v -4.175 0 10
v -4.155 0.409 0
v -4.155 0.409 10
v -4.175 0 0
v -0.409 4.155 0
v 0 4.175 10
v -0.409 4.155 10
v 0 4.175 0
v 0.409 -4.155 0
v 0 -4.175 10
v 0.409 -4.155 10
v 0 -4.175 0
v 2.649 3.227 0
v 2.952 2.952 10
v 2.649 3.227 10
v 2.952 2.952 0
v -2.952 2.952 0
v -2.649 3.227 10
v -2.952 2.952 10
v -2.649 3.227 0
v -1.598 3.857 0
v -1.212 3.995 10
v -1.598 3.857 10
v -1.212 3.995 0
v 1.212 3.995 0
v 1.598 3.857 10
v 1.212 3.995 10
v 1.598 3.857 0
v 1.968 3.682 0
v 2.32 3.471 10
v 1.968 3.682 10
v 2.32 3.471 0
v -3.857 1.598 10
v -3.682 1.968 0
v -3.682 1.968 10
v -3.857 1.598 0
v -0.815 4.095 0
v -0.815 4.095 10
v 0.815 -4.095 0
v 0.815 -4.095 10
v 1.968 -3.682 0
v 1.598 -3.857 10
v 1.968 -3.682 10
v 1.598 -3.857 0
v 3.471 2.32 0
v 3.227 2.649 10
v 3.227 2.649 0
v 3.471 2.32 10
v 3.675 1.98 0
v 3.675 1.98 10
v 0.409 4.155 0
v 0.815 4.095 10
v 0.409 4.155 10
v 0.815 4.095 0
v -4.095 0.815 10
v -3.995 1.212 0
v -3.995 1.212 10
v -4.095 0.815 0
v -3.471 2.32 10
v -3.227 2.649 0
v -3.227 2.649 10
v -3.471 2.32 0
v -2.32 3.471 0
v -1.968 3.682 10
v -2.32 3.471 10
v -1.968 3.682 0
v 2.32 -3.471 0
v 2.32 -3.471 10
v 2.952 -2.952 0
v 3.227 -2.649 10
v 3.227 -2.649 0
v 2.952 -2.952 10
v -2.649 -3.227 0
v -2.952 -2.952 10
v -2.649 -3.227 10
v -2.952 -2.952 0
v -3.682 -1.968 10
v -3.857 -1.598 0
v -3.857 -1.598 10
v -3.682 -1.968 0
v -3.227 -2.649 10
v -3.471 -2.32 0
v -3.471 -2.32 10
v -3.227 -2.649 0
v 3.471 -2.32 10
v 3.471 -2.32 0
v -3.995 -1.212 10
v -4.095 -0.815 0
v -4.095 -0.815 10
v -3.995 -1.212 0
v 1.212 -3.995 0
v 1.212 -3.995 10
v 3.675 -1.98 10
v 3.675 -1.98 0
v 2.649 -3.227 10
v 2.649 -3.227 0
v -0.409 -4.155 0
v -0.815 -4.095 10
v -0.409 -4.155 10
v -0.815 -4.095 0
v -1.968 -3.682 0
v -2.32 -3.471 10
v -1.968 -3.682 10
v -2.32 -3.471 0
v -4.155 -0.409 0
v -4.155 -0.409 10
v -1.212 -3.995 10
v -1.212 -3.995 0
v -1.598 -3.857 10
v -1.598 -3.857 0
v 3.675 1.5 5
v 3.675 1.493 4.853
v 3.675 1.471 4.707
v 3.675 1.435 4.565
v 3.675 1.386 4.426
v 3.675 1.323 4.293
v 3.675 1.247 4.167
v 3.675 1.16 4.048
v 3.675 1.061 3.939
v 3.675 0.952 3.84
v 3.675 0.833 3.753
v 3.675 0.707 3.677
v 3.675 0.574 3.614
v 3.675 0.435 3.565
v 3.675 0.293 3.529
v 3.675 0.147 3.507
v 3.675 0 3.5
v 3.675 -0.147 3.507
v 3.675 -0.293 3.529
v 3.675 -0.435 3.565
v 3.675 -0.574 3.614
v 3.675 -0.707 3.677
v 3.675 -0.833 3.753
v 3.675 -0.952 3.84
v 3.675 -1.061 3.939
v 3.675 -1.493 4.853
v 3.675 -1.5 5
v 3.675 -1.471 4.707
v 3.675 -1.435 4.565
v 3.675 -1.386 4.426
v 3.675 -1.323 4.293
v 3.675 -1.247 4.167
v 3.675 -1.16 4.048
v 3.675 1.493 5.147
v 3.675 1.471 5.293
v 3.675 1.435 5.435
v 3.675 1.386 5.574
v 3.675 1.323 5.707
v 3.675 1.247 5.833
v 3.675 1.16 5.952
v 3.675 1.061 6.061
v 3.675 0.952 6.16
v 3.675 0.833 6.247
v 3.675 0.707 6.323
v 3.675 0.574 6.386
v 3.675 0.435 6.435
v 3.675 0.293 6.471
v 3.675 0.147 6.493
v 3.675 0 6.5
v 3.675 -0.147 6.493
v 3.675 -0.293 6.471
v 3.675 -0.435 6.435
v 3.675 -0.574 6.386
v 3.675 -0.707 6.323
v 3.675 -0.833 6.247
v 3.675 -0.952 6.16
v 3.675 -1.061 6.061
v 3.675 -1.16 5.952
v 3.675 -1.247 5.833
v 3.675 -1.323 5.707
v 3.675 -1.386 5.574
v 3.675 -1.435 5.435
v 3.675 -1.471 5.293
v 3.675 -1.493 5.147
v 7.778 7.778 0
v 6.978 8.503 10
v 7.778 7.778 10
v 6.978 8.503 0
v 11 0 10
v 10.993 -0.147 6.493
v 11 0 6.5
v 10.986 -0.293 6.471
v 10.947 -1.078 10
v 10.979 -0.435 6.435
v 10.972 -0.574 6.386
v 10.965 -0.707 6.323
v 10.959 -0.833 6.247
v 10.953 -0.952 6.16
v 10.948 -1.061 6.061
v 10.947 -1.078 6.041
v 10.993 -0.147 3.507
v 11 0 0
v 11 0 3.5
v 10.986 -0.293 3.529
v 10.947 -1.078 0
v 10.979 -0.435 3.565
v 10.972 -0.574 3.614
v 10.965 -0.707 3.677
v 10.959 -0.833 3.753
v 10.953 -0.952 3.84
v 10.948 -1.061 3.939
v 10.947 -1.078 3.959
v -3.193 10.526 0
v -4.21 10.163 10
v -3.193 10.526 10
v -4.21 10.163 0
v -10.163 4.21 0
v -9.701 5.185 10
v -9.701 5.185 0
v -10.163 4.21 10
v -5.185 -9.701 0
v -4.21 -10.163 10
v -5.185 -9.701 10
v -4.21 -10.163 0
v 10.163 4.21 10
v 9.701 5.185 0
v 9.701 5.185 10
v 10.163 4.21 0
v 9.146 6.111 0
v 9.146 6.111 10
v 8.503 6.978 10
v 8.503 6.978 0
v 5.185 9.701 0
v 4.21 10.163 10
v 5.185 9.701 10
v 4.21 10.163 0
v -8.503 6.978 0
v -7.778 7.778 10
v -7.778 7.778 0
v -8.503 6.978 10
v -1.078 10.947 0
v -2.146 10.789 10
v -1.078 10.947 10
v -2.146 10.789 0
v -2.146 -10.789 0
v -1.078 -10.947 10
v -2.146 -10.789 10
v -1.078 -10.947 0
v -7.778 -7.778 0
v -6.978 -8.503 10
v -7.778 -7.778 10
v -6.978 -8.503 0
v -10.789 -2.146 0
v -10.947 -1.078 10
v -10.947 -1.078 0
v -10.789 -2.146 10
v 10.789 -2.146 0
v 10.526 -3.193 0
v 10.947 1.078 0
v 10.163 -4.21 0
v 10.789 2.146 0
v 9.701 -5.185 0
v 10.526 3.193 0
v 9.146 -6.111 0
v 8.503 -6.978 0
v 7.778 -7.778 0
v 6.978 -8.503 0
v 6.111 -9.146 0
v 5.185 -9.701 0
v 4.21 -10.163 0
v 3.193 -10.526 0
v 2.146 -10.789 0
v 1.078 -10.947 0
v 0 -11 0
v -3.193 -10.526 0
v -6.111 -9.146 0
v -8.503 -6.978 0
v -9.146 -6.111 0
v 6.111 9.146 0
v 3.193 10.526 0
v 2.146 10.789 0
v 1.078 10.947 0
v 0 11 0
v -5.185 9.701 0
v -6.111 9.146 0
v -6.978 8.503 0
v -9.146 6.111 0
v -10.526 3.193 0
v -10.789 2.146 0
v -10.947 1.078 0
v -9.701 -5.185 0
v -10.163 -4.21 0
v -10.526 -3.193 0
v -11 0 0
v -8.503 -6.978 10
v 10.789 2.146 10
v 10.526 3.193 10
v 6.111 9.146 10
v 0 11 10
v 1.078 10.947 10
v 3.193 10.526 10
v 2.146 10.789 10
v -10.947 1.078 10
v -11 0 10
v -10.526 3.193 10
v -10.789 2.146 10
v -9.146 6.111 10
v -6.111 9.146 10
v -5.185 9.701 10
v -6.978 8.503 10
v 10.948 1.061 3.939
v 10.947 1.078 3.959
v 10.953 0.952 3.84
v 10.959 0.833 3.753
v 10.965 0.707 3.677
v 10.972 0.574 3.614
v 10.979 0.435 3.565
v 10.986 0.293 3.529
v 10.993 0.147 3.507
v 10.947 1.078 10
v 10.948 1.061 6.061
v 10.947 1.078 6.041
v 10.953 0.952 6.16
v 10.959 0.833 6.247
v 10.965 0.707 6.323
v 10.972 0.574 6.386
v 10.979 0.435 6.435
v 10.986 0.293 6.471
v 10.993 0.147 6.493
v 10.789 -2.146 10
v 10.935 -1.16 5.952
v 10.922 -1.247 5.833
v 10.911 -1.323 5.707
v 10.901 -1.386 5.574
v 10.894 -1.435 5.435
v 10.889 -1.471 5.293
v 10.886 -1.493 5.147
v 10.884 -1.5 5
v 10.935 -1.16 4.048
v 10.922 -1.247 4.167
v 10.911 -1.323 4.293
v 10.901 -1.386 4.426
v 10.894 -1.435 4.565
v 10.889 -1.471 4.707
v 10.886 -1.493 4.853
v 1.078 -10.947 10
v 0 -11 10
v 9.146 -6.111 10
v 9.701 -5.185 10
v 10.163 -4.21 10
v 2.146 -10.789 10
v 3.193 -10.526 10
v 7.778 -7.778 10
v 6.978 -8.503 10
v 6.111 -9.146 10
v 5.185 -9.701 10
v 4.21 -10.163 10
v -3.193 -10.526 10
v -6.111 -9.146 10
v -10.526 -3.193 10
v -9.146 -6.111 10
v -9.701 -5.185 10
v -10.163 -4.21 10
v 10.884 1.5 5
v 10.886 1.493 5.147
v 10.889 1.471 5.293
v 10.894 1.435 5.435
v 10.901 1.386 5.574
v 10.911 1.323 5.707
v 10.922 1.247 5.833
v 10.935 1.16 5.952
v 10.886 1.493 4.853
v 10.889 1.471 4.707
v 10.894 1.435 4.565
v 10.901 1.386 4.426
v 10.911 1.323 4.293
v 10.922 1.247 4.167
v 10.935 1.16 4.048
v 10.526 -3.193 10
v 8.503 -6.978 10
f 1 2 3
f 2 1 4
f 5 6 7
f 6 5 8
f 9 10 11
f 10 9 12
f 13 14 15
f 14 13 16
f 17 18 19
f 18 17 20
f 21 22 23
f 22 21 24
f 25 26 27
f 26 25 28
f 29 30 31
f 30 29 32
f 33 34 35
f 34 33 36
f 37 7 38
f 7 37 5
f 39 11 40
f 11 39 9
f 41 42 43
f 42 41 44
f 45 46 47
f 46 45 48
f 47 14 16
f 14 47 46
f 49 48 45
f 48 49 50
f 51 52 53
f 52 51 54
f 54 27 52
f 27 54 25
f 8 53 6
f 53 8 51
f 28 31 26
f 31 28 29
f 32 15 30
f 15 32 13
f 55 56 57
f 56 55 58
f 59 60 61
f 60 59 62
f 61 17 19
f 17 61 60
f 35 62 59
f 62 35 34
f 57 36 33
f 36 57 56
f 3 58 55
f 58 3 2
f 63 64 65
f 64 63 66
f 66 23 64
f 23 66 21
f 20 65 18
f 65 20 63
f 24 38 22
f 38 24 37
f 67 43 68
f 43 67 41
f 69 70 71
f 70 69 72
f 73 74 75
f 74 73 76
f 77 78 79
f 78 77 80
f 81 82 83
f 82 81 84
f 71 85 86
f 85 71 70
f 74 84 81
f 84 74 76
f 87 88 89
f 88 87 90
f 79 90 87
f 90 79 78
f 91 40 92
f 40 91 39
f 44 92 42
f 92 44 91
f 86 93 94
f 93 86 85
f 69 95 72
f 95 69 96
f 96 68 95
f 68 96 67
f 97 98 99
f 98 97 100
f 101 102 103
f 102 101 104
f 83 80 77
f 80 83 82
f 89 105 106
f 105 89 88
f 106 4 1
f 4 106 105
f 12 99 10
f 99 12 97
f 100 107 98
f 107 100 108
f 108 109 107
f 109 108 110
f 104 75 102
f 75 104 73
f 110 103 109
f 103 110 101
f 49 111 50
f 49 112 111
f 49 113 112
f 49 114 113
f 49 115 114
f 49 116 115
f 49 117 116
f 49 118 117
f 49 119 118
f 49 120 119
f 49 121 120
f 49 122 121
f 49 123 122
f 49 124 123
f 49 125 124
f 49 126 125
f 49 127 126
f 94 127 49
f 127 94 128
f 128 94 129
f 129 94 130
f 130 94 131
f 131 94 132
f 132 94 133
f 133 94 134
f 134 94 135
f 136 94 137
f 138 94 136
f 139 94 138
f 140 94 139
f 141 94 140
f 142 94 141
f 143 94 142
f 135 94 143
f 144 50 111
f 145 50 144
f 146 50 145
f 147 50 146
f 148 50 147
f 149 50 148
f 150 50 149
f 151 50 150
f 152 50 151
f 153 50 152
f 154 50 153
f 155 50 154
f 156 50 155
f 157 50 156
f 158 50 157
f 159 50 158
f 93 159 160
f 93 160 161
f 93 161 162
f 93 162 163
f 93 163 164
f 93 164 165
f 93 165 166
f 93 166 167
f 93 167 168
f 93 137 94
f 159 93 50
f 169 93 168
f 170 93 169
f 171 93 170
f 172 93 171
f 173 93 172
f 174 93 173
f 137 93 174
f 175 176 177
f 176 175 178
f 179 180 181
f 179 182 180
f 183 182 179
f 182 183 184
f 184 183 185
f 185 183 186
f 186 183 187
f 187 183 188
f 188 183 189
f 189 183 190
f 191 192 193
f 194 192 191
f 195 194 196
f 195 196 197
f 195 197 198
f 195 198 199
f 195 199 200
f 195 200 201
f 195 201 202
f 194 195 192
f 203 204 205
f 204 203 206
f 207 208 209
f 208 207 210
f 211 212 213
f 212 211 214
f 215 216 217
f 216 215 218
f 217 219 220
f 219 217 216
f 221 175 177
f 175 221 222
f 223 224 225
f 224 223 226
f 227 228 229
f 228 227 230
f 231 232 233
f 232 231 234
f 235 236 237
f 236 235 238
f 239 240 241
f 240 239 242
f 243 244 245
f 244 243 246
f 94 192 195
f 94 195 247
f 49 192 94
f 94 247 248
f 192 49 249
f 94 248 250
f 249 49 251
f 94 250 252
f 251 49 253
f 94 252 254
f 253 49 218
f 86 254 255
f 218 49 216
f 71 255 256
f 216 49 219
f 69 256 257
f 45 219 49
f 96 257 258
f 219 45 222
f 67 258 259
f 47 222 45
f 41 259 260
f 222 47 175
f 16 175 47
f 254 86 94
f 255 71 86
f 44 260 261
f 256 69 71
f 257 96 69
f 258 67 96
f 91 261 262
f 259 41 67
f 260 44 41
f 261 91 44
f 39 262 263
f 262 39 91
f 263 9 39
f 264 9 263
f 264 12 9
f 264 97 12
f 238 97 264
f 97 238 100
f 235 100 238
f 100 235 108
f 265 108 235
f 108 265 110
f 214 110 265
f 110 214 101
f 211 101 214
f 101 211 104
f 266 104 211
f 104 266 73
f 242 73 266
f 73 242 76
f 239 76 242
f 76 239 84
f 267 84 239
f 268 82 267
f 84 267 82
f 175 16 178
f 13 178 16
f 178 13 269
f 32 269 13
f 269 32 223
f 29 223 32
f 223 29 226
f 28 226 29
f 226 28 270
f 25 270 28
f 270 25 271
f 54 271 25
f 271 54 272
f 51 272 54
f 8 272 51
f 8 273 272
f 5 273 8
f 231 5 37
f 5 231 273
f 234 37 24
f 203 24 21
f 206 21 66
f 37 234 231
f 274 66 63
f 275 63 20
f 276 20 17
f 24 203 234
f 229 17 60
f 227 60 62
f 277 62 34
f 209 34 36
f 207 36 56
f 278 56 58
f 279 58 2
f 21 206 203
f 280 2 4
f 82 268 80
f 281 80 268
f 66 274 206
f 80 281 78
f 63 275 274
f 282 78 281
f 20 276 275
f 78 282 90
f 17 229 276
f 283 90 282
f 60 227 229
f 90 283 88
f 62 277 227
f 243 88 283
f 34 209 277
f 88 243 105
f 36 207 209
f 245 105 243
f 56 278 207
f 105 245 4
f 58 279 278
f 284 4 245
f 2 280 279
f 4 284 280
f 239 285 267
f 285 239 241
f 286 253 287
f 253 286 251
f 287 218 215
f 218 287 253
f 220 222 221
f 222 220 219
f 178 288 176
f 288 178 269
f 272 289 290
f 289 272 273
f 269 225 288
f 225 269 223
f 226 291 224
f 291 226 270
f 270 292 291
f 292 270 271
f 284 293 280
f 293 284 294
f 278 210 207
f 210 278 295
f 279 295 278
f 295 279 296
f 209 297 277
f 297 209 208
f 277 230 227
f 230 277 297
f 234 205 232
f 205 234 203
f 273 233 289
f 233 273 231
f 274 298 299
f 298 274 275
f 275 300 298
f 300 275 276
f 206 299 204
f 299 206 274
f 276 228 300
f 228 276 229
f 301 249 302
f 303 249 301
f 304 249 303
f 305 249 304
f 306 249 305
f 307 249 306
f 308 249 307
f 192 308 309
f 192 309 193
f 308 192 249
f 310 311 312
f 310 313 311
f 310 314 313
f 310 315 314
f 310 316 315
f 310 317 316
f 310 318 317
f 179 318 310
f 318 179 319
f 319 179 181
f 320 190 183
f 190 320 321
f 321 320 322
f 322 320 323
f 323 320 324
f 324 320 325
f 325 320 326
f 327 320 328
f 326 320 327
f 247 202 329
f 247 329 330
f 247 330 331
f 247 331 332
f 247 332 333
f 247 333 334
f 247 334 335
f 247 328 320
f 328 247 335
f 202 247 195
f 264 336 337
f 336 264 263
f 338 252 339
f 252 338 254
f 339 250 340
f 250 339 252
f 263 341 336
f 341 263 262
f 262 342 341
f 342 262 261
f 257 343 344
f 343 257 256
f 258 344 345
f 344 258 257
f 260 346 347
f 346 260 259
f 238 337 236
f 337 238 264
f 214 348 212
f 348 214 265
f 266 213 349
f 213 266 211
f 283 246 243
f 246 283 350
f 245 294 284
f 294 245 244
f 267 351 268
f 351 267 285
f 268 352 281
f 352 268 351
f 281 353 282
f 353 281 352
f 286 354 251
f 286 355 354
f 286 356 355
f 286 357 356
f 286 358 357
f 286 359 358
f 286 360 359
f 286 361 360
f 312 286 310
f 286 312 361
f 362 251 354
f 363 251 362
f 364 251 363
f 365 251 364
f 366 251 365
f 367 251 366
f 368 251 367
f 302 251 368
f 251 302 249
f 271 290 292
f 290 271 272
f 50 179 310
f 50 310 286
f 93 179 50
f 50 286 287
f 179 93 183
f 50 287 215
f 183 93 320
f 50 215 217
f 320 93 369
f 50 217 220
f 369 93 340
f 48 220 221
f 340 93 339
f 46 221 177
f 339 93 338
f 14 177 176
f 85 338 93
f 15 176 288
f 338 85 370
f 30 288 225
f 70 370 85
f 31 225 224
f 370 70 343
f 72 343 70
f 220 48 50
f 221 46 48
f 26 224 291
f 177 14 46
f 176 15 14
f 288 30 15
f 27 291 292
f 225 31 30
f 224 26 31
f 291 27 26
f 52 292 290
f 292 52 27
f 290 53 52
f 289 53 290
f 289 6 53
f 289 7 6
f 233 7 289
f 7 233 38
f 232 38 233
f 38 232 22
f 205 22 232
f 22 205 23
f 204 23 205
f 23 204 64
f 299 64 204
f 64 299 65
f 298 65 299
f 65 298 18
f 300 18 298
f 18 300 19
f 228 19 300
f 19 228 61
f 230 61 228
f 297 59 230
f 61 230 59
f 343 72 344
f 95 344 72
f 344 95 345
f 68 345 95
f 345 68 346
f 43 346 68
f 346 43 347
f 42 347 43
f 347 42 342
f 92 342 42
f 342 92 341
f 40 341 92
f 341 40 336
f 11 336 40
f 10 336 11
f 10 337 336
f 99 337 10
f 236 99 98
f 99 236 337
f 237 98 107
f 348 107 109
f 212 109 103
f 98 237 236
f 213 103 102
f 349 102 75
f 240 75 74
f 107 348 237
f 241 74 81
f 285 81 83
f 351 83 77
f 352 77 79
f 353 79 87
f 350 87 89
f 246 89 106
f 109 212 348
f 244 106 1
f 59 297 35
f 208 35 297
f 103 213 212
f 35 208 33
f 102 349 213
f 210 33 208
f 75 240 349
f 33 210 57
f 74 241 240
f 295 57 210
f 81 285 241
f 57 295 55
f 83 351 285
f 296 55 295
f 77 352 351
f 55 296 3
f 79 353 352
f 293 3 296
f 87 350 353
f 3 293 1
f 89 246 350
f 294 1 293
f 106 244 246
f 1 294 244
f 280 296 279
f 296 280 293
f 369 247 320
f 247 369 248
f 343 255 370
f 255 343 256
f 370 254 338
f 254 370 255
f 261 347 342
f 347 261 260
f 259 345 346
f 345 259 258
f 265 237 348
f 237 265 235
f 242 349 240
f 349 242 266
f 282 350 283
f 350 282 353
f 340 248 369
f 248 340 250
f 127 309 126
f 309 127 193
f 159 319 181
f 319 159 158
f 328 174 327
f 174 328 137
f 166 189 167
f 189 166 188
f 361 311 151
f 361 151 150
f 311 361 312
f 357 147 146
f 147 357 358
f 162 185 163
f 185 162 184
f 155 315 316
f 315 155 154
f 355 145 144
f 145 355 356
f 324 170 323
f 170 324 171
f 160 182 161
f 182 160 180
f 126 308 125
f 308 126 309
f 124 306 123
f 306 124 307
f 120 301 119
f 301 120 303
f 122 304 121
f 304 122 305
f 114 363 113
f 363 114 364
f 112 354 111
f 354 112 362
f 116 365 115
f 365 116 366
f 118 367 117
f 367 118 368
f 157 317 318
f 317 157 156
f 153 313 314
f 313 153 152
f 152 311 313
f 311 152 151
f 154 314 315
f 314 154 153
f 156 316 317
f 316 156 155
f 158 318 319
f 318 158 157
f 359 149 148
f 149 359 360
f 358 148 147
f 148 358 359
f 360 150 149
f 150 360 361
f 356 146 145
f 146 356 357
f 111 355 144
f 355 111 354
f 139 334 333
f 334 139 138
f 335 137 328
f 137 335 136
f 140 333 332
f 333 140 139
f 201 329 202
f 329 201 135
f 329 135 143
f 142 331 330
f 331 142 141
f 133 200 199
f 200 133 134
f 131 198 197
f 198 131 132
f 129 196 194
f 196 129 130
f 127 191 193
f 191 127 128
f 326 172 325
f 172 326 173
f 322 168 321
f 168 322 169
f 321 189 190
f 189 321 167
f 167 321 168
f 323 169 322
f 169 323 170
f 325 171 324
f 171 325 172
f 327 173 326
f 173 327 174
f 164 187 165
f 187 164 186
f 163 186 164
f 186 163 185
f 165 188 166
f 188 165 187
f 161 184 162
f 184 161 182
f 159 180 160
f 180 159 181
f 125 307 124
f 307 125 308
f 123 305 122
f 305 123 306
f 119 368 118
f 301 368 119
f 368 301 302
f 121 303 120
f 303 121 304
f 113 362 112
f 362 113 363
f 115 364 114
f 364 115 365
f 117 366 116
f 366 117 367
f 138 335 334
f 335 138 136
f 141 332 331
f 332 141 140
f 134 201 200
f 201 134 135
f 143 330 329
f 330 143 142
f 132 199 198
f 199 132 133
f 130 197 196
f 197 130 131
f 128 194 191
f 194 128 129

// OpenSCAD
// Gen-DT — shaft collar with D-flat bore (set screw bears on the flat); print x4
include <parameters.scad>;
$fn = 64;
// D-flat keyed bore: flat faces +X (angle 0 = magnet pocket 0 = index notch)
module dflat_bore(h) {
    intersection() {
        cylinder(d=shaft_bore, h=h);
        translate([-shaft_bore, -shaft_bore, 0]) cube([shaft_bore + dflat_x, 2*shaft_bore, h]);
    }
}

od = 22; h = collar_h; set_d = 3.0;
difference() {
    cylinder(d=od, h=h);
    translate([0, 0, -0.1]) dflat_bore(h + 0.2);
    translate([0, 0, h/2]) rotate([0, 90, 0]) cylinder(d=set_d, h=od);
}
